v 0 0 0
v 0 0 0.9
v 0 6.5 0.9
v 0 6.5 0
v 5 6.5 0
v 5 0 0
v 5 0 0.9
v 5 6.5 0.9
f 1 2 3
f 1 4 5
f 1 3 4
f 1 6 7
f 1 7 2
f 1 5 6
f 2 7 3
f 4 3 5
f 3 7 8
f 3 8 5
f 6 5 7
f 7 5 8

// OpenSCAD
/* Warning, this is a very basic generator with a lot of approximation 
input data : [VQFN, UVX, 5x6.5x0.9mm, 49, , B, C04-00358B]
generated by com.zoubworld.electronics.cad.model3d.Basic
Date : Sun Feb 15 10:50:48 CET 2026
*/

//body
color("black")
translate([0,0,0])
cube([5.0,6.5,0.9], center=false);
